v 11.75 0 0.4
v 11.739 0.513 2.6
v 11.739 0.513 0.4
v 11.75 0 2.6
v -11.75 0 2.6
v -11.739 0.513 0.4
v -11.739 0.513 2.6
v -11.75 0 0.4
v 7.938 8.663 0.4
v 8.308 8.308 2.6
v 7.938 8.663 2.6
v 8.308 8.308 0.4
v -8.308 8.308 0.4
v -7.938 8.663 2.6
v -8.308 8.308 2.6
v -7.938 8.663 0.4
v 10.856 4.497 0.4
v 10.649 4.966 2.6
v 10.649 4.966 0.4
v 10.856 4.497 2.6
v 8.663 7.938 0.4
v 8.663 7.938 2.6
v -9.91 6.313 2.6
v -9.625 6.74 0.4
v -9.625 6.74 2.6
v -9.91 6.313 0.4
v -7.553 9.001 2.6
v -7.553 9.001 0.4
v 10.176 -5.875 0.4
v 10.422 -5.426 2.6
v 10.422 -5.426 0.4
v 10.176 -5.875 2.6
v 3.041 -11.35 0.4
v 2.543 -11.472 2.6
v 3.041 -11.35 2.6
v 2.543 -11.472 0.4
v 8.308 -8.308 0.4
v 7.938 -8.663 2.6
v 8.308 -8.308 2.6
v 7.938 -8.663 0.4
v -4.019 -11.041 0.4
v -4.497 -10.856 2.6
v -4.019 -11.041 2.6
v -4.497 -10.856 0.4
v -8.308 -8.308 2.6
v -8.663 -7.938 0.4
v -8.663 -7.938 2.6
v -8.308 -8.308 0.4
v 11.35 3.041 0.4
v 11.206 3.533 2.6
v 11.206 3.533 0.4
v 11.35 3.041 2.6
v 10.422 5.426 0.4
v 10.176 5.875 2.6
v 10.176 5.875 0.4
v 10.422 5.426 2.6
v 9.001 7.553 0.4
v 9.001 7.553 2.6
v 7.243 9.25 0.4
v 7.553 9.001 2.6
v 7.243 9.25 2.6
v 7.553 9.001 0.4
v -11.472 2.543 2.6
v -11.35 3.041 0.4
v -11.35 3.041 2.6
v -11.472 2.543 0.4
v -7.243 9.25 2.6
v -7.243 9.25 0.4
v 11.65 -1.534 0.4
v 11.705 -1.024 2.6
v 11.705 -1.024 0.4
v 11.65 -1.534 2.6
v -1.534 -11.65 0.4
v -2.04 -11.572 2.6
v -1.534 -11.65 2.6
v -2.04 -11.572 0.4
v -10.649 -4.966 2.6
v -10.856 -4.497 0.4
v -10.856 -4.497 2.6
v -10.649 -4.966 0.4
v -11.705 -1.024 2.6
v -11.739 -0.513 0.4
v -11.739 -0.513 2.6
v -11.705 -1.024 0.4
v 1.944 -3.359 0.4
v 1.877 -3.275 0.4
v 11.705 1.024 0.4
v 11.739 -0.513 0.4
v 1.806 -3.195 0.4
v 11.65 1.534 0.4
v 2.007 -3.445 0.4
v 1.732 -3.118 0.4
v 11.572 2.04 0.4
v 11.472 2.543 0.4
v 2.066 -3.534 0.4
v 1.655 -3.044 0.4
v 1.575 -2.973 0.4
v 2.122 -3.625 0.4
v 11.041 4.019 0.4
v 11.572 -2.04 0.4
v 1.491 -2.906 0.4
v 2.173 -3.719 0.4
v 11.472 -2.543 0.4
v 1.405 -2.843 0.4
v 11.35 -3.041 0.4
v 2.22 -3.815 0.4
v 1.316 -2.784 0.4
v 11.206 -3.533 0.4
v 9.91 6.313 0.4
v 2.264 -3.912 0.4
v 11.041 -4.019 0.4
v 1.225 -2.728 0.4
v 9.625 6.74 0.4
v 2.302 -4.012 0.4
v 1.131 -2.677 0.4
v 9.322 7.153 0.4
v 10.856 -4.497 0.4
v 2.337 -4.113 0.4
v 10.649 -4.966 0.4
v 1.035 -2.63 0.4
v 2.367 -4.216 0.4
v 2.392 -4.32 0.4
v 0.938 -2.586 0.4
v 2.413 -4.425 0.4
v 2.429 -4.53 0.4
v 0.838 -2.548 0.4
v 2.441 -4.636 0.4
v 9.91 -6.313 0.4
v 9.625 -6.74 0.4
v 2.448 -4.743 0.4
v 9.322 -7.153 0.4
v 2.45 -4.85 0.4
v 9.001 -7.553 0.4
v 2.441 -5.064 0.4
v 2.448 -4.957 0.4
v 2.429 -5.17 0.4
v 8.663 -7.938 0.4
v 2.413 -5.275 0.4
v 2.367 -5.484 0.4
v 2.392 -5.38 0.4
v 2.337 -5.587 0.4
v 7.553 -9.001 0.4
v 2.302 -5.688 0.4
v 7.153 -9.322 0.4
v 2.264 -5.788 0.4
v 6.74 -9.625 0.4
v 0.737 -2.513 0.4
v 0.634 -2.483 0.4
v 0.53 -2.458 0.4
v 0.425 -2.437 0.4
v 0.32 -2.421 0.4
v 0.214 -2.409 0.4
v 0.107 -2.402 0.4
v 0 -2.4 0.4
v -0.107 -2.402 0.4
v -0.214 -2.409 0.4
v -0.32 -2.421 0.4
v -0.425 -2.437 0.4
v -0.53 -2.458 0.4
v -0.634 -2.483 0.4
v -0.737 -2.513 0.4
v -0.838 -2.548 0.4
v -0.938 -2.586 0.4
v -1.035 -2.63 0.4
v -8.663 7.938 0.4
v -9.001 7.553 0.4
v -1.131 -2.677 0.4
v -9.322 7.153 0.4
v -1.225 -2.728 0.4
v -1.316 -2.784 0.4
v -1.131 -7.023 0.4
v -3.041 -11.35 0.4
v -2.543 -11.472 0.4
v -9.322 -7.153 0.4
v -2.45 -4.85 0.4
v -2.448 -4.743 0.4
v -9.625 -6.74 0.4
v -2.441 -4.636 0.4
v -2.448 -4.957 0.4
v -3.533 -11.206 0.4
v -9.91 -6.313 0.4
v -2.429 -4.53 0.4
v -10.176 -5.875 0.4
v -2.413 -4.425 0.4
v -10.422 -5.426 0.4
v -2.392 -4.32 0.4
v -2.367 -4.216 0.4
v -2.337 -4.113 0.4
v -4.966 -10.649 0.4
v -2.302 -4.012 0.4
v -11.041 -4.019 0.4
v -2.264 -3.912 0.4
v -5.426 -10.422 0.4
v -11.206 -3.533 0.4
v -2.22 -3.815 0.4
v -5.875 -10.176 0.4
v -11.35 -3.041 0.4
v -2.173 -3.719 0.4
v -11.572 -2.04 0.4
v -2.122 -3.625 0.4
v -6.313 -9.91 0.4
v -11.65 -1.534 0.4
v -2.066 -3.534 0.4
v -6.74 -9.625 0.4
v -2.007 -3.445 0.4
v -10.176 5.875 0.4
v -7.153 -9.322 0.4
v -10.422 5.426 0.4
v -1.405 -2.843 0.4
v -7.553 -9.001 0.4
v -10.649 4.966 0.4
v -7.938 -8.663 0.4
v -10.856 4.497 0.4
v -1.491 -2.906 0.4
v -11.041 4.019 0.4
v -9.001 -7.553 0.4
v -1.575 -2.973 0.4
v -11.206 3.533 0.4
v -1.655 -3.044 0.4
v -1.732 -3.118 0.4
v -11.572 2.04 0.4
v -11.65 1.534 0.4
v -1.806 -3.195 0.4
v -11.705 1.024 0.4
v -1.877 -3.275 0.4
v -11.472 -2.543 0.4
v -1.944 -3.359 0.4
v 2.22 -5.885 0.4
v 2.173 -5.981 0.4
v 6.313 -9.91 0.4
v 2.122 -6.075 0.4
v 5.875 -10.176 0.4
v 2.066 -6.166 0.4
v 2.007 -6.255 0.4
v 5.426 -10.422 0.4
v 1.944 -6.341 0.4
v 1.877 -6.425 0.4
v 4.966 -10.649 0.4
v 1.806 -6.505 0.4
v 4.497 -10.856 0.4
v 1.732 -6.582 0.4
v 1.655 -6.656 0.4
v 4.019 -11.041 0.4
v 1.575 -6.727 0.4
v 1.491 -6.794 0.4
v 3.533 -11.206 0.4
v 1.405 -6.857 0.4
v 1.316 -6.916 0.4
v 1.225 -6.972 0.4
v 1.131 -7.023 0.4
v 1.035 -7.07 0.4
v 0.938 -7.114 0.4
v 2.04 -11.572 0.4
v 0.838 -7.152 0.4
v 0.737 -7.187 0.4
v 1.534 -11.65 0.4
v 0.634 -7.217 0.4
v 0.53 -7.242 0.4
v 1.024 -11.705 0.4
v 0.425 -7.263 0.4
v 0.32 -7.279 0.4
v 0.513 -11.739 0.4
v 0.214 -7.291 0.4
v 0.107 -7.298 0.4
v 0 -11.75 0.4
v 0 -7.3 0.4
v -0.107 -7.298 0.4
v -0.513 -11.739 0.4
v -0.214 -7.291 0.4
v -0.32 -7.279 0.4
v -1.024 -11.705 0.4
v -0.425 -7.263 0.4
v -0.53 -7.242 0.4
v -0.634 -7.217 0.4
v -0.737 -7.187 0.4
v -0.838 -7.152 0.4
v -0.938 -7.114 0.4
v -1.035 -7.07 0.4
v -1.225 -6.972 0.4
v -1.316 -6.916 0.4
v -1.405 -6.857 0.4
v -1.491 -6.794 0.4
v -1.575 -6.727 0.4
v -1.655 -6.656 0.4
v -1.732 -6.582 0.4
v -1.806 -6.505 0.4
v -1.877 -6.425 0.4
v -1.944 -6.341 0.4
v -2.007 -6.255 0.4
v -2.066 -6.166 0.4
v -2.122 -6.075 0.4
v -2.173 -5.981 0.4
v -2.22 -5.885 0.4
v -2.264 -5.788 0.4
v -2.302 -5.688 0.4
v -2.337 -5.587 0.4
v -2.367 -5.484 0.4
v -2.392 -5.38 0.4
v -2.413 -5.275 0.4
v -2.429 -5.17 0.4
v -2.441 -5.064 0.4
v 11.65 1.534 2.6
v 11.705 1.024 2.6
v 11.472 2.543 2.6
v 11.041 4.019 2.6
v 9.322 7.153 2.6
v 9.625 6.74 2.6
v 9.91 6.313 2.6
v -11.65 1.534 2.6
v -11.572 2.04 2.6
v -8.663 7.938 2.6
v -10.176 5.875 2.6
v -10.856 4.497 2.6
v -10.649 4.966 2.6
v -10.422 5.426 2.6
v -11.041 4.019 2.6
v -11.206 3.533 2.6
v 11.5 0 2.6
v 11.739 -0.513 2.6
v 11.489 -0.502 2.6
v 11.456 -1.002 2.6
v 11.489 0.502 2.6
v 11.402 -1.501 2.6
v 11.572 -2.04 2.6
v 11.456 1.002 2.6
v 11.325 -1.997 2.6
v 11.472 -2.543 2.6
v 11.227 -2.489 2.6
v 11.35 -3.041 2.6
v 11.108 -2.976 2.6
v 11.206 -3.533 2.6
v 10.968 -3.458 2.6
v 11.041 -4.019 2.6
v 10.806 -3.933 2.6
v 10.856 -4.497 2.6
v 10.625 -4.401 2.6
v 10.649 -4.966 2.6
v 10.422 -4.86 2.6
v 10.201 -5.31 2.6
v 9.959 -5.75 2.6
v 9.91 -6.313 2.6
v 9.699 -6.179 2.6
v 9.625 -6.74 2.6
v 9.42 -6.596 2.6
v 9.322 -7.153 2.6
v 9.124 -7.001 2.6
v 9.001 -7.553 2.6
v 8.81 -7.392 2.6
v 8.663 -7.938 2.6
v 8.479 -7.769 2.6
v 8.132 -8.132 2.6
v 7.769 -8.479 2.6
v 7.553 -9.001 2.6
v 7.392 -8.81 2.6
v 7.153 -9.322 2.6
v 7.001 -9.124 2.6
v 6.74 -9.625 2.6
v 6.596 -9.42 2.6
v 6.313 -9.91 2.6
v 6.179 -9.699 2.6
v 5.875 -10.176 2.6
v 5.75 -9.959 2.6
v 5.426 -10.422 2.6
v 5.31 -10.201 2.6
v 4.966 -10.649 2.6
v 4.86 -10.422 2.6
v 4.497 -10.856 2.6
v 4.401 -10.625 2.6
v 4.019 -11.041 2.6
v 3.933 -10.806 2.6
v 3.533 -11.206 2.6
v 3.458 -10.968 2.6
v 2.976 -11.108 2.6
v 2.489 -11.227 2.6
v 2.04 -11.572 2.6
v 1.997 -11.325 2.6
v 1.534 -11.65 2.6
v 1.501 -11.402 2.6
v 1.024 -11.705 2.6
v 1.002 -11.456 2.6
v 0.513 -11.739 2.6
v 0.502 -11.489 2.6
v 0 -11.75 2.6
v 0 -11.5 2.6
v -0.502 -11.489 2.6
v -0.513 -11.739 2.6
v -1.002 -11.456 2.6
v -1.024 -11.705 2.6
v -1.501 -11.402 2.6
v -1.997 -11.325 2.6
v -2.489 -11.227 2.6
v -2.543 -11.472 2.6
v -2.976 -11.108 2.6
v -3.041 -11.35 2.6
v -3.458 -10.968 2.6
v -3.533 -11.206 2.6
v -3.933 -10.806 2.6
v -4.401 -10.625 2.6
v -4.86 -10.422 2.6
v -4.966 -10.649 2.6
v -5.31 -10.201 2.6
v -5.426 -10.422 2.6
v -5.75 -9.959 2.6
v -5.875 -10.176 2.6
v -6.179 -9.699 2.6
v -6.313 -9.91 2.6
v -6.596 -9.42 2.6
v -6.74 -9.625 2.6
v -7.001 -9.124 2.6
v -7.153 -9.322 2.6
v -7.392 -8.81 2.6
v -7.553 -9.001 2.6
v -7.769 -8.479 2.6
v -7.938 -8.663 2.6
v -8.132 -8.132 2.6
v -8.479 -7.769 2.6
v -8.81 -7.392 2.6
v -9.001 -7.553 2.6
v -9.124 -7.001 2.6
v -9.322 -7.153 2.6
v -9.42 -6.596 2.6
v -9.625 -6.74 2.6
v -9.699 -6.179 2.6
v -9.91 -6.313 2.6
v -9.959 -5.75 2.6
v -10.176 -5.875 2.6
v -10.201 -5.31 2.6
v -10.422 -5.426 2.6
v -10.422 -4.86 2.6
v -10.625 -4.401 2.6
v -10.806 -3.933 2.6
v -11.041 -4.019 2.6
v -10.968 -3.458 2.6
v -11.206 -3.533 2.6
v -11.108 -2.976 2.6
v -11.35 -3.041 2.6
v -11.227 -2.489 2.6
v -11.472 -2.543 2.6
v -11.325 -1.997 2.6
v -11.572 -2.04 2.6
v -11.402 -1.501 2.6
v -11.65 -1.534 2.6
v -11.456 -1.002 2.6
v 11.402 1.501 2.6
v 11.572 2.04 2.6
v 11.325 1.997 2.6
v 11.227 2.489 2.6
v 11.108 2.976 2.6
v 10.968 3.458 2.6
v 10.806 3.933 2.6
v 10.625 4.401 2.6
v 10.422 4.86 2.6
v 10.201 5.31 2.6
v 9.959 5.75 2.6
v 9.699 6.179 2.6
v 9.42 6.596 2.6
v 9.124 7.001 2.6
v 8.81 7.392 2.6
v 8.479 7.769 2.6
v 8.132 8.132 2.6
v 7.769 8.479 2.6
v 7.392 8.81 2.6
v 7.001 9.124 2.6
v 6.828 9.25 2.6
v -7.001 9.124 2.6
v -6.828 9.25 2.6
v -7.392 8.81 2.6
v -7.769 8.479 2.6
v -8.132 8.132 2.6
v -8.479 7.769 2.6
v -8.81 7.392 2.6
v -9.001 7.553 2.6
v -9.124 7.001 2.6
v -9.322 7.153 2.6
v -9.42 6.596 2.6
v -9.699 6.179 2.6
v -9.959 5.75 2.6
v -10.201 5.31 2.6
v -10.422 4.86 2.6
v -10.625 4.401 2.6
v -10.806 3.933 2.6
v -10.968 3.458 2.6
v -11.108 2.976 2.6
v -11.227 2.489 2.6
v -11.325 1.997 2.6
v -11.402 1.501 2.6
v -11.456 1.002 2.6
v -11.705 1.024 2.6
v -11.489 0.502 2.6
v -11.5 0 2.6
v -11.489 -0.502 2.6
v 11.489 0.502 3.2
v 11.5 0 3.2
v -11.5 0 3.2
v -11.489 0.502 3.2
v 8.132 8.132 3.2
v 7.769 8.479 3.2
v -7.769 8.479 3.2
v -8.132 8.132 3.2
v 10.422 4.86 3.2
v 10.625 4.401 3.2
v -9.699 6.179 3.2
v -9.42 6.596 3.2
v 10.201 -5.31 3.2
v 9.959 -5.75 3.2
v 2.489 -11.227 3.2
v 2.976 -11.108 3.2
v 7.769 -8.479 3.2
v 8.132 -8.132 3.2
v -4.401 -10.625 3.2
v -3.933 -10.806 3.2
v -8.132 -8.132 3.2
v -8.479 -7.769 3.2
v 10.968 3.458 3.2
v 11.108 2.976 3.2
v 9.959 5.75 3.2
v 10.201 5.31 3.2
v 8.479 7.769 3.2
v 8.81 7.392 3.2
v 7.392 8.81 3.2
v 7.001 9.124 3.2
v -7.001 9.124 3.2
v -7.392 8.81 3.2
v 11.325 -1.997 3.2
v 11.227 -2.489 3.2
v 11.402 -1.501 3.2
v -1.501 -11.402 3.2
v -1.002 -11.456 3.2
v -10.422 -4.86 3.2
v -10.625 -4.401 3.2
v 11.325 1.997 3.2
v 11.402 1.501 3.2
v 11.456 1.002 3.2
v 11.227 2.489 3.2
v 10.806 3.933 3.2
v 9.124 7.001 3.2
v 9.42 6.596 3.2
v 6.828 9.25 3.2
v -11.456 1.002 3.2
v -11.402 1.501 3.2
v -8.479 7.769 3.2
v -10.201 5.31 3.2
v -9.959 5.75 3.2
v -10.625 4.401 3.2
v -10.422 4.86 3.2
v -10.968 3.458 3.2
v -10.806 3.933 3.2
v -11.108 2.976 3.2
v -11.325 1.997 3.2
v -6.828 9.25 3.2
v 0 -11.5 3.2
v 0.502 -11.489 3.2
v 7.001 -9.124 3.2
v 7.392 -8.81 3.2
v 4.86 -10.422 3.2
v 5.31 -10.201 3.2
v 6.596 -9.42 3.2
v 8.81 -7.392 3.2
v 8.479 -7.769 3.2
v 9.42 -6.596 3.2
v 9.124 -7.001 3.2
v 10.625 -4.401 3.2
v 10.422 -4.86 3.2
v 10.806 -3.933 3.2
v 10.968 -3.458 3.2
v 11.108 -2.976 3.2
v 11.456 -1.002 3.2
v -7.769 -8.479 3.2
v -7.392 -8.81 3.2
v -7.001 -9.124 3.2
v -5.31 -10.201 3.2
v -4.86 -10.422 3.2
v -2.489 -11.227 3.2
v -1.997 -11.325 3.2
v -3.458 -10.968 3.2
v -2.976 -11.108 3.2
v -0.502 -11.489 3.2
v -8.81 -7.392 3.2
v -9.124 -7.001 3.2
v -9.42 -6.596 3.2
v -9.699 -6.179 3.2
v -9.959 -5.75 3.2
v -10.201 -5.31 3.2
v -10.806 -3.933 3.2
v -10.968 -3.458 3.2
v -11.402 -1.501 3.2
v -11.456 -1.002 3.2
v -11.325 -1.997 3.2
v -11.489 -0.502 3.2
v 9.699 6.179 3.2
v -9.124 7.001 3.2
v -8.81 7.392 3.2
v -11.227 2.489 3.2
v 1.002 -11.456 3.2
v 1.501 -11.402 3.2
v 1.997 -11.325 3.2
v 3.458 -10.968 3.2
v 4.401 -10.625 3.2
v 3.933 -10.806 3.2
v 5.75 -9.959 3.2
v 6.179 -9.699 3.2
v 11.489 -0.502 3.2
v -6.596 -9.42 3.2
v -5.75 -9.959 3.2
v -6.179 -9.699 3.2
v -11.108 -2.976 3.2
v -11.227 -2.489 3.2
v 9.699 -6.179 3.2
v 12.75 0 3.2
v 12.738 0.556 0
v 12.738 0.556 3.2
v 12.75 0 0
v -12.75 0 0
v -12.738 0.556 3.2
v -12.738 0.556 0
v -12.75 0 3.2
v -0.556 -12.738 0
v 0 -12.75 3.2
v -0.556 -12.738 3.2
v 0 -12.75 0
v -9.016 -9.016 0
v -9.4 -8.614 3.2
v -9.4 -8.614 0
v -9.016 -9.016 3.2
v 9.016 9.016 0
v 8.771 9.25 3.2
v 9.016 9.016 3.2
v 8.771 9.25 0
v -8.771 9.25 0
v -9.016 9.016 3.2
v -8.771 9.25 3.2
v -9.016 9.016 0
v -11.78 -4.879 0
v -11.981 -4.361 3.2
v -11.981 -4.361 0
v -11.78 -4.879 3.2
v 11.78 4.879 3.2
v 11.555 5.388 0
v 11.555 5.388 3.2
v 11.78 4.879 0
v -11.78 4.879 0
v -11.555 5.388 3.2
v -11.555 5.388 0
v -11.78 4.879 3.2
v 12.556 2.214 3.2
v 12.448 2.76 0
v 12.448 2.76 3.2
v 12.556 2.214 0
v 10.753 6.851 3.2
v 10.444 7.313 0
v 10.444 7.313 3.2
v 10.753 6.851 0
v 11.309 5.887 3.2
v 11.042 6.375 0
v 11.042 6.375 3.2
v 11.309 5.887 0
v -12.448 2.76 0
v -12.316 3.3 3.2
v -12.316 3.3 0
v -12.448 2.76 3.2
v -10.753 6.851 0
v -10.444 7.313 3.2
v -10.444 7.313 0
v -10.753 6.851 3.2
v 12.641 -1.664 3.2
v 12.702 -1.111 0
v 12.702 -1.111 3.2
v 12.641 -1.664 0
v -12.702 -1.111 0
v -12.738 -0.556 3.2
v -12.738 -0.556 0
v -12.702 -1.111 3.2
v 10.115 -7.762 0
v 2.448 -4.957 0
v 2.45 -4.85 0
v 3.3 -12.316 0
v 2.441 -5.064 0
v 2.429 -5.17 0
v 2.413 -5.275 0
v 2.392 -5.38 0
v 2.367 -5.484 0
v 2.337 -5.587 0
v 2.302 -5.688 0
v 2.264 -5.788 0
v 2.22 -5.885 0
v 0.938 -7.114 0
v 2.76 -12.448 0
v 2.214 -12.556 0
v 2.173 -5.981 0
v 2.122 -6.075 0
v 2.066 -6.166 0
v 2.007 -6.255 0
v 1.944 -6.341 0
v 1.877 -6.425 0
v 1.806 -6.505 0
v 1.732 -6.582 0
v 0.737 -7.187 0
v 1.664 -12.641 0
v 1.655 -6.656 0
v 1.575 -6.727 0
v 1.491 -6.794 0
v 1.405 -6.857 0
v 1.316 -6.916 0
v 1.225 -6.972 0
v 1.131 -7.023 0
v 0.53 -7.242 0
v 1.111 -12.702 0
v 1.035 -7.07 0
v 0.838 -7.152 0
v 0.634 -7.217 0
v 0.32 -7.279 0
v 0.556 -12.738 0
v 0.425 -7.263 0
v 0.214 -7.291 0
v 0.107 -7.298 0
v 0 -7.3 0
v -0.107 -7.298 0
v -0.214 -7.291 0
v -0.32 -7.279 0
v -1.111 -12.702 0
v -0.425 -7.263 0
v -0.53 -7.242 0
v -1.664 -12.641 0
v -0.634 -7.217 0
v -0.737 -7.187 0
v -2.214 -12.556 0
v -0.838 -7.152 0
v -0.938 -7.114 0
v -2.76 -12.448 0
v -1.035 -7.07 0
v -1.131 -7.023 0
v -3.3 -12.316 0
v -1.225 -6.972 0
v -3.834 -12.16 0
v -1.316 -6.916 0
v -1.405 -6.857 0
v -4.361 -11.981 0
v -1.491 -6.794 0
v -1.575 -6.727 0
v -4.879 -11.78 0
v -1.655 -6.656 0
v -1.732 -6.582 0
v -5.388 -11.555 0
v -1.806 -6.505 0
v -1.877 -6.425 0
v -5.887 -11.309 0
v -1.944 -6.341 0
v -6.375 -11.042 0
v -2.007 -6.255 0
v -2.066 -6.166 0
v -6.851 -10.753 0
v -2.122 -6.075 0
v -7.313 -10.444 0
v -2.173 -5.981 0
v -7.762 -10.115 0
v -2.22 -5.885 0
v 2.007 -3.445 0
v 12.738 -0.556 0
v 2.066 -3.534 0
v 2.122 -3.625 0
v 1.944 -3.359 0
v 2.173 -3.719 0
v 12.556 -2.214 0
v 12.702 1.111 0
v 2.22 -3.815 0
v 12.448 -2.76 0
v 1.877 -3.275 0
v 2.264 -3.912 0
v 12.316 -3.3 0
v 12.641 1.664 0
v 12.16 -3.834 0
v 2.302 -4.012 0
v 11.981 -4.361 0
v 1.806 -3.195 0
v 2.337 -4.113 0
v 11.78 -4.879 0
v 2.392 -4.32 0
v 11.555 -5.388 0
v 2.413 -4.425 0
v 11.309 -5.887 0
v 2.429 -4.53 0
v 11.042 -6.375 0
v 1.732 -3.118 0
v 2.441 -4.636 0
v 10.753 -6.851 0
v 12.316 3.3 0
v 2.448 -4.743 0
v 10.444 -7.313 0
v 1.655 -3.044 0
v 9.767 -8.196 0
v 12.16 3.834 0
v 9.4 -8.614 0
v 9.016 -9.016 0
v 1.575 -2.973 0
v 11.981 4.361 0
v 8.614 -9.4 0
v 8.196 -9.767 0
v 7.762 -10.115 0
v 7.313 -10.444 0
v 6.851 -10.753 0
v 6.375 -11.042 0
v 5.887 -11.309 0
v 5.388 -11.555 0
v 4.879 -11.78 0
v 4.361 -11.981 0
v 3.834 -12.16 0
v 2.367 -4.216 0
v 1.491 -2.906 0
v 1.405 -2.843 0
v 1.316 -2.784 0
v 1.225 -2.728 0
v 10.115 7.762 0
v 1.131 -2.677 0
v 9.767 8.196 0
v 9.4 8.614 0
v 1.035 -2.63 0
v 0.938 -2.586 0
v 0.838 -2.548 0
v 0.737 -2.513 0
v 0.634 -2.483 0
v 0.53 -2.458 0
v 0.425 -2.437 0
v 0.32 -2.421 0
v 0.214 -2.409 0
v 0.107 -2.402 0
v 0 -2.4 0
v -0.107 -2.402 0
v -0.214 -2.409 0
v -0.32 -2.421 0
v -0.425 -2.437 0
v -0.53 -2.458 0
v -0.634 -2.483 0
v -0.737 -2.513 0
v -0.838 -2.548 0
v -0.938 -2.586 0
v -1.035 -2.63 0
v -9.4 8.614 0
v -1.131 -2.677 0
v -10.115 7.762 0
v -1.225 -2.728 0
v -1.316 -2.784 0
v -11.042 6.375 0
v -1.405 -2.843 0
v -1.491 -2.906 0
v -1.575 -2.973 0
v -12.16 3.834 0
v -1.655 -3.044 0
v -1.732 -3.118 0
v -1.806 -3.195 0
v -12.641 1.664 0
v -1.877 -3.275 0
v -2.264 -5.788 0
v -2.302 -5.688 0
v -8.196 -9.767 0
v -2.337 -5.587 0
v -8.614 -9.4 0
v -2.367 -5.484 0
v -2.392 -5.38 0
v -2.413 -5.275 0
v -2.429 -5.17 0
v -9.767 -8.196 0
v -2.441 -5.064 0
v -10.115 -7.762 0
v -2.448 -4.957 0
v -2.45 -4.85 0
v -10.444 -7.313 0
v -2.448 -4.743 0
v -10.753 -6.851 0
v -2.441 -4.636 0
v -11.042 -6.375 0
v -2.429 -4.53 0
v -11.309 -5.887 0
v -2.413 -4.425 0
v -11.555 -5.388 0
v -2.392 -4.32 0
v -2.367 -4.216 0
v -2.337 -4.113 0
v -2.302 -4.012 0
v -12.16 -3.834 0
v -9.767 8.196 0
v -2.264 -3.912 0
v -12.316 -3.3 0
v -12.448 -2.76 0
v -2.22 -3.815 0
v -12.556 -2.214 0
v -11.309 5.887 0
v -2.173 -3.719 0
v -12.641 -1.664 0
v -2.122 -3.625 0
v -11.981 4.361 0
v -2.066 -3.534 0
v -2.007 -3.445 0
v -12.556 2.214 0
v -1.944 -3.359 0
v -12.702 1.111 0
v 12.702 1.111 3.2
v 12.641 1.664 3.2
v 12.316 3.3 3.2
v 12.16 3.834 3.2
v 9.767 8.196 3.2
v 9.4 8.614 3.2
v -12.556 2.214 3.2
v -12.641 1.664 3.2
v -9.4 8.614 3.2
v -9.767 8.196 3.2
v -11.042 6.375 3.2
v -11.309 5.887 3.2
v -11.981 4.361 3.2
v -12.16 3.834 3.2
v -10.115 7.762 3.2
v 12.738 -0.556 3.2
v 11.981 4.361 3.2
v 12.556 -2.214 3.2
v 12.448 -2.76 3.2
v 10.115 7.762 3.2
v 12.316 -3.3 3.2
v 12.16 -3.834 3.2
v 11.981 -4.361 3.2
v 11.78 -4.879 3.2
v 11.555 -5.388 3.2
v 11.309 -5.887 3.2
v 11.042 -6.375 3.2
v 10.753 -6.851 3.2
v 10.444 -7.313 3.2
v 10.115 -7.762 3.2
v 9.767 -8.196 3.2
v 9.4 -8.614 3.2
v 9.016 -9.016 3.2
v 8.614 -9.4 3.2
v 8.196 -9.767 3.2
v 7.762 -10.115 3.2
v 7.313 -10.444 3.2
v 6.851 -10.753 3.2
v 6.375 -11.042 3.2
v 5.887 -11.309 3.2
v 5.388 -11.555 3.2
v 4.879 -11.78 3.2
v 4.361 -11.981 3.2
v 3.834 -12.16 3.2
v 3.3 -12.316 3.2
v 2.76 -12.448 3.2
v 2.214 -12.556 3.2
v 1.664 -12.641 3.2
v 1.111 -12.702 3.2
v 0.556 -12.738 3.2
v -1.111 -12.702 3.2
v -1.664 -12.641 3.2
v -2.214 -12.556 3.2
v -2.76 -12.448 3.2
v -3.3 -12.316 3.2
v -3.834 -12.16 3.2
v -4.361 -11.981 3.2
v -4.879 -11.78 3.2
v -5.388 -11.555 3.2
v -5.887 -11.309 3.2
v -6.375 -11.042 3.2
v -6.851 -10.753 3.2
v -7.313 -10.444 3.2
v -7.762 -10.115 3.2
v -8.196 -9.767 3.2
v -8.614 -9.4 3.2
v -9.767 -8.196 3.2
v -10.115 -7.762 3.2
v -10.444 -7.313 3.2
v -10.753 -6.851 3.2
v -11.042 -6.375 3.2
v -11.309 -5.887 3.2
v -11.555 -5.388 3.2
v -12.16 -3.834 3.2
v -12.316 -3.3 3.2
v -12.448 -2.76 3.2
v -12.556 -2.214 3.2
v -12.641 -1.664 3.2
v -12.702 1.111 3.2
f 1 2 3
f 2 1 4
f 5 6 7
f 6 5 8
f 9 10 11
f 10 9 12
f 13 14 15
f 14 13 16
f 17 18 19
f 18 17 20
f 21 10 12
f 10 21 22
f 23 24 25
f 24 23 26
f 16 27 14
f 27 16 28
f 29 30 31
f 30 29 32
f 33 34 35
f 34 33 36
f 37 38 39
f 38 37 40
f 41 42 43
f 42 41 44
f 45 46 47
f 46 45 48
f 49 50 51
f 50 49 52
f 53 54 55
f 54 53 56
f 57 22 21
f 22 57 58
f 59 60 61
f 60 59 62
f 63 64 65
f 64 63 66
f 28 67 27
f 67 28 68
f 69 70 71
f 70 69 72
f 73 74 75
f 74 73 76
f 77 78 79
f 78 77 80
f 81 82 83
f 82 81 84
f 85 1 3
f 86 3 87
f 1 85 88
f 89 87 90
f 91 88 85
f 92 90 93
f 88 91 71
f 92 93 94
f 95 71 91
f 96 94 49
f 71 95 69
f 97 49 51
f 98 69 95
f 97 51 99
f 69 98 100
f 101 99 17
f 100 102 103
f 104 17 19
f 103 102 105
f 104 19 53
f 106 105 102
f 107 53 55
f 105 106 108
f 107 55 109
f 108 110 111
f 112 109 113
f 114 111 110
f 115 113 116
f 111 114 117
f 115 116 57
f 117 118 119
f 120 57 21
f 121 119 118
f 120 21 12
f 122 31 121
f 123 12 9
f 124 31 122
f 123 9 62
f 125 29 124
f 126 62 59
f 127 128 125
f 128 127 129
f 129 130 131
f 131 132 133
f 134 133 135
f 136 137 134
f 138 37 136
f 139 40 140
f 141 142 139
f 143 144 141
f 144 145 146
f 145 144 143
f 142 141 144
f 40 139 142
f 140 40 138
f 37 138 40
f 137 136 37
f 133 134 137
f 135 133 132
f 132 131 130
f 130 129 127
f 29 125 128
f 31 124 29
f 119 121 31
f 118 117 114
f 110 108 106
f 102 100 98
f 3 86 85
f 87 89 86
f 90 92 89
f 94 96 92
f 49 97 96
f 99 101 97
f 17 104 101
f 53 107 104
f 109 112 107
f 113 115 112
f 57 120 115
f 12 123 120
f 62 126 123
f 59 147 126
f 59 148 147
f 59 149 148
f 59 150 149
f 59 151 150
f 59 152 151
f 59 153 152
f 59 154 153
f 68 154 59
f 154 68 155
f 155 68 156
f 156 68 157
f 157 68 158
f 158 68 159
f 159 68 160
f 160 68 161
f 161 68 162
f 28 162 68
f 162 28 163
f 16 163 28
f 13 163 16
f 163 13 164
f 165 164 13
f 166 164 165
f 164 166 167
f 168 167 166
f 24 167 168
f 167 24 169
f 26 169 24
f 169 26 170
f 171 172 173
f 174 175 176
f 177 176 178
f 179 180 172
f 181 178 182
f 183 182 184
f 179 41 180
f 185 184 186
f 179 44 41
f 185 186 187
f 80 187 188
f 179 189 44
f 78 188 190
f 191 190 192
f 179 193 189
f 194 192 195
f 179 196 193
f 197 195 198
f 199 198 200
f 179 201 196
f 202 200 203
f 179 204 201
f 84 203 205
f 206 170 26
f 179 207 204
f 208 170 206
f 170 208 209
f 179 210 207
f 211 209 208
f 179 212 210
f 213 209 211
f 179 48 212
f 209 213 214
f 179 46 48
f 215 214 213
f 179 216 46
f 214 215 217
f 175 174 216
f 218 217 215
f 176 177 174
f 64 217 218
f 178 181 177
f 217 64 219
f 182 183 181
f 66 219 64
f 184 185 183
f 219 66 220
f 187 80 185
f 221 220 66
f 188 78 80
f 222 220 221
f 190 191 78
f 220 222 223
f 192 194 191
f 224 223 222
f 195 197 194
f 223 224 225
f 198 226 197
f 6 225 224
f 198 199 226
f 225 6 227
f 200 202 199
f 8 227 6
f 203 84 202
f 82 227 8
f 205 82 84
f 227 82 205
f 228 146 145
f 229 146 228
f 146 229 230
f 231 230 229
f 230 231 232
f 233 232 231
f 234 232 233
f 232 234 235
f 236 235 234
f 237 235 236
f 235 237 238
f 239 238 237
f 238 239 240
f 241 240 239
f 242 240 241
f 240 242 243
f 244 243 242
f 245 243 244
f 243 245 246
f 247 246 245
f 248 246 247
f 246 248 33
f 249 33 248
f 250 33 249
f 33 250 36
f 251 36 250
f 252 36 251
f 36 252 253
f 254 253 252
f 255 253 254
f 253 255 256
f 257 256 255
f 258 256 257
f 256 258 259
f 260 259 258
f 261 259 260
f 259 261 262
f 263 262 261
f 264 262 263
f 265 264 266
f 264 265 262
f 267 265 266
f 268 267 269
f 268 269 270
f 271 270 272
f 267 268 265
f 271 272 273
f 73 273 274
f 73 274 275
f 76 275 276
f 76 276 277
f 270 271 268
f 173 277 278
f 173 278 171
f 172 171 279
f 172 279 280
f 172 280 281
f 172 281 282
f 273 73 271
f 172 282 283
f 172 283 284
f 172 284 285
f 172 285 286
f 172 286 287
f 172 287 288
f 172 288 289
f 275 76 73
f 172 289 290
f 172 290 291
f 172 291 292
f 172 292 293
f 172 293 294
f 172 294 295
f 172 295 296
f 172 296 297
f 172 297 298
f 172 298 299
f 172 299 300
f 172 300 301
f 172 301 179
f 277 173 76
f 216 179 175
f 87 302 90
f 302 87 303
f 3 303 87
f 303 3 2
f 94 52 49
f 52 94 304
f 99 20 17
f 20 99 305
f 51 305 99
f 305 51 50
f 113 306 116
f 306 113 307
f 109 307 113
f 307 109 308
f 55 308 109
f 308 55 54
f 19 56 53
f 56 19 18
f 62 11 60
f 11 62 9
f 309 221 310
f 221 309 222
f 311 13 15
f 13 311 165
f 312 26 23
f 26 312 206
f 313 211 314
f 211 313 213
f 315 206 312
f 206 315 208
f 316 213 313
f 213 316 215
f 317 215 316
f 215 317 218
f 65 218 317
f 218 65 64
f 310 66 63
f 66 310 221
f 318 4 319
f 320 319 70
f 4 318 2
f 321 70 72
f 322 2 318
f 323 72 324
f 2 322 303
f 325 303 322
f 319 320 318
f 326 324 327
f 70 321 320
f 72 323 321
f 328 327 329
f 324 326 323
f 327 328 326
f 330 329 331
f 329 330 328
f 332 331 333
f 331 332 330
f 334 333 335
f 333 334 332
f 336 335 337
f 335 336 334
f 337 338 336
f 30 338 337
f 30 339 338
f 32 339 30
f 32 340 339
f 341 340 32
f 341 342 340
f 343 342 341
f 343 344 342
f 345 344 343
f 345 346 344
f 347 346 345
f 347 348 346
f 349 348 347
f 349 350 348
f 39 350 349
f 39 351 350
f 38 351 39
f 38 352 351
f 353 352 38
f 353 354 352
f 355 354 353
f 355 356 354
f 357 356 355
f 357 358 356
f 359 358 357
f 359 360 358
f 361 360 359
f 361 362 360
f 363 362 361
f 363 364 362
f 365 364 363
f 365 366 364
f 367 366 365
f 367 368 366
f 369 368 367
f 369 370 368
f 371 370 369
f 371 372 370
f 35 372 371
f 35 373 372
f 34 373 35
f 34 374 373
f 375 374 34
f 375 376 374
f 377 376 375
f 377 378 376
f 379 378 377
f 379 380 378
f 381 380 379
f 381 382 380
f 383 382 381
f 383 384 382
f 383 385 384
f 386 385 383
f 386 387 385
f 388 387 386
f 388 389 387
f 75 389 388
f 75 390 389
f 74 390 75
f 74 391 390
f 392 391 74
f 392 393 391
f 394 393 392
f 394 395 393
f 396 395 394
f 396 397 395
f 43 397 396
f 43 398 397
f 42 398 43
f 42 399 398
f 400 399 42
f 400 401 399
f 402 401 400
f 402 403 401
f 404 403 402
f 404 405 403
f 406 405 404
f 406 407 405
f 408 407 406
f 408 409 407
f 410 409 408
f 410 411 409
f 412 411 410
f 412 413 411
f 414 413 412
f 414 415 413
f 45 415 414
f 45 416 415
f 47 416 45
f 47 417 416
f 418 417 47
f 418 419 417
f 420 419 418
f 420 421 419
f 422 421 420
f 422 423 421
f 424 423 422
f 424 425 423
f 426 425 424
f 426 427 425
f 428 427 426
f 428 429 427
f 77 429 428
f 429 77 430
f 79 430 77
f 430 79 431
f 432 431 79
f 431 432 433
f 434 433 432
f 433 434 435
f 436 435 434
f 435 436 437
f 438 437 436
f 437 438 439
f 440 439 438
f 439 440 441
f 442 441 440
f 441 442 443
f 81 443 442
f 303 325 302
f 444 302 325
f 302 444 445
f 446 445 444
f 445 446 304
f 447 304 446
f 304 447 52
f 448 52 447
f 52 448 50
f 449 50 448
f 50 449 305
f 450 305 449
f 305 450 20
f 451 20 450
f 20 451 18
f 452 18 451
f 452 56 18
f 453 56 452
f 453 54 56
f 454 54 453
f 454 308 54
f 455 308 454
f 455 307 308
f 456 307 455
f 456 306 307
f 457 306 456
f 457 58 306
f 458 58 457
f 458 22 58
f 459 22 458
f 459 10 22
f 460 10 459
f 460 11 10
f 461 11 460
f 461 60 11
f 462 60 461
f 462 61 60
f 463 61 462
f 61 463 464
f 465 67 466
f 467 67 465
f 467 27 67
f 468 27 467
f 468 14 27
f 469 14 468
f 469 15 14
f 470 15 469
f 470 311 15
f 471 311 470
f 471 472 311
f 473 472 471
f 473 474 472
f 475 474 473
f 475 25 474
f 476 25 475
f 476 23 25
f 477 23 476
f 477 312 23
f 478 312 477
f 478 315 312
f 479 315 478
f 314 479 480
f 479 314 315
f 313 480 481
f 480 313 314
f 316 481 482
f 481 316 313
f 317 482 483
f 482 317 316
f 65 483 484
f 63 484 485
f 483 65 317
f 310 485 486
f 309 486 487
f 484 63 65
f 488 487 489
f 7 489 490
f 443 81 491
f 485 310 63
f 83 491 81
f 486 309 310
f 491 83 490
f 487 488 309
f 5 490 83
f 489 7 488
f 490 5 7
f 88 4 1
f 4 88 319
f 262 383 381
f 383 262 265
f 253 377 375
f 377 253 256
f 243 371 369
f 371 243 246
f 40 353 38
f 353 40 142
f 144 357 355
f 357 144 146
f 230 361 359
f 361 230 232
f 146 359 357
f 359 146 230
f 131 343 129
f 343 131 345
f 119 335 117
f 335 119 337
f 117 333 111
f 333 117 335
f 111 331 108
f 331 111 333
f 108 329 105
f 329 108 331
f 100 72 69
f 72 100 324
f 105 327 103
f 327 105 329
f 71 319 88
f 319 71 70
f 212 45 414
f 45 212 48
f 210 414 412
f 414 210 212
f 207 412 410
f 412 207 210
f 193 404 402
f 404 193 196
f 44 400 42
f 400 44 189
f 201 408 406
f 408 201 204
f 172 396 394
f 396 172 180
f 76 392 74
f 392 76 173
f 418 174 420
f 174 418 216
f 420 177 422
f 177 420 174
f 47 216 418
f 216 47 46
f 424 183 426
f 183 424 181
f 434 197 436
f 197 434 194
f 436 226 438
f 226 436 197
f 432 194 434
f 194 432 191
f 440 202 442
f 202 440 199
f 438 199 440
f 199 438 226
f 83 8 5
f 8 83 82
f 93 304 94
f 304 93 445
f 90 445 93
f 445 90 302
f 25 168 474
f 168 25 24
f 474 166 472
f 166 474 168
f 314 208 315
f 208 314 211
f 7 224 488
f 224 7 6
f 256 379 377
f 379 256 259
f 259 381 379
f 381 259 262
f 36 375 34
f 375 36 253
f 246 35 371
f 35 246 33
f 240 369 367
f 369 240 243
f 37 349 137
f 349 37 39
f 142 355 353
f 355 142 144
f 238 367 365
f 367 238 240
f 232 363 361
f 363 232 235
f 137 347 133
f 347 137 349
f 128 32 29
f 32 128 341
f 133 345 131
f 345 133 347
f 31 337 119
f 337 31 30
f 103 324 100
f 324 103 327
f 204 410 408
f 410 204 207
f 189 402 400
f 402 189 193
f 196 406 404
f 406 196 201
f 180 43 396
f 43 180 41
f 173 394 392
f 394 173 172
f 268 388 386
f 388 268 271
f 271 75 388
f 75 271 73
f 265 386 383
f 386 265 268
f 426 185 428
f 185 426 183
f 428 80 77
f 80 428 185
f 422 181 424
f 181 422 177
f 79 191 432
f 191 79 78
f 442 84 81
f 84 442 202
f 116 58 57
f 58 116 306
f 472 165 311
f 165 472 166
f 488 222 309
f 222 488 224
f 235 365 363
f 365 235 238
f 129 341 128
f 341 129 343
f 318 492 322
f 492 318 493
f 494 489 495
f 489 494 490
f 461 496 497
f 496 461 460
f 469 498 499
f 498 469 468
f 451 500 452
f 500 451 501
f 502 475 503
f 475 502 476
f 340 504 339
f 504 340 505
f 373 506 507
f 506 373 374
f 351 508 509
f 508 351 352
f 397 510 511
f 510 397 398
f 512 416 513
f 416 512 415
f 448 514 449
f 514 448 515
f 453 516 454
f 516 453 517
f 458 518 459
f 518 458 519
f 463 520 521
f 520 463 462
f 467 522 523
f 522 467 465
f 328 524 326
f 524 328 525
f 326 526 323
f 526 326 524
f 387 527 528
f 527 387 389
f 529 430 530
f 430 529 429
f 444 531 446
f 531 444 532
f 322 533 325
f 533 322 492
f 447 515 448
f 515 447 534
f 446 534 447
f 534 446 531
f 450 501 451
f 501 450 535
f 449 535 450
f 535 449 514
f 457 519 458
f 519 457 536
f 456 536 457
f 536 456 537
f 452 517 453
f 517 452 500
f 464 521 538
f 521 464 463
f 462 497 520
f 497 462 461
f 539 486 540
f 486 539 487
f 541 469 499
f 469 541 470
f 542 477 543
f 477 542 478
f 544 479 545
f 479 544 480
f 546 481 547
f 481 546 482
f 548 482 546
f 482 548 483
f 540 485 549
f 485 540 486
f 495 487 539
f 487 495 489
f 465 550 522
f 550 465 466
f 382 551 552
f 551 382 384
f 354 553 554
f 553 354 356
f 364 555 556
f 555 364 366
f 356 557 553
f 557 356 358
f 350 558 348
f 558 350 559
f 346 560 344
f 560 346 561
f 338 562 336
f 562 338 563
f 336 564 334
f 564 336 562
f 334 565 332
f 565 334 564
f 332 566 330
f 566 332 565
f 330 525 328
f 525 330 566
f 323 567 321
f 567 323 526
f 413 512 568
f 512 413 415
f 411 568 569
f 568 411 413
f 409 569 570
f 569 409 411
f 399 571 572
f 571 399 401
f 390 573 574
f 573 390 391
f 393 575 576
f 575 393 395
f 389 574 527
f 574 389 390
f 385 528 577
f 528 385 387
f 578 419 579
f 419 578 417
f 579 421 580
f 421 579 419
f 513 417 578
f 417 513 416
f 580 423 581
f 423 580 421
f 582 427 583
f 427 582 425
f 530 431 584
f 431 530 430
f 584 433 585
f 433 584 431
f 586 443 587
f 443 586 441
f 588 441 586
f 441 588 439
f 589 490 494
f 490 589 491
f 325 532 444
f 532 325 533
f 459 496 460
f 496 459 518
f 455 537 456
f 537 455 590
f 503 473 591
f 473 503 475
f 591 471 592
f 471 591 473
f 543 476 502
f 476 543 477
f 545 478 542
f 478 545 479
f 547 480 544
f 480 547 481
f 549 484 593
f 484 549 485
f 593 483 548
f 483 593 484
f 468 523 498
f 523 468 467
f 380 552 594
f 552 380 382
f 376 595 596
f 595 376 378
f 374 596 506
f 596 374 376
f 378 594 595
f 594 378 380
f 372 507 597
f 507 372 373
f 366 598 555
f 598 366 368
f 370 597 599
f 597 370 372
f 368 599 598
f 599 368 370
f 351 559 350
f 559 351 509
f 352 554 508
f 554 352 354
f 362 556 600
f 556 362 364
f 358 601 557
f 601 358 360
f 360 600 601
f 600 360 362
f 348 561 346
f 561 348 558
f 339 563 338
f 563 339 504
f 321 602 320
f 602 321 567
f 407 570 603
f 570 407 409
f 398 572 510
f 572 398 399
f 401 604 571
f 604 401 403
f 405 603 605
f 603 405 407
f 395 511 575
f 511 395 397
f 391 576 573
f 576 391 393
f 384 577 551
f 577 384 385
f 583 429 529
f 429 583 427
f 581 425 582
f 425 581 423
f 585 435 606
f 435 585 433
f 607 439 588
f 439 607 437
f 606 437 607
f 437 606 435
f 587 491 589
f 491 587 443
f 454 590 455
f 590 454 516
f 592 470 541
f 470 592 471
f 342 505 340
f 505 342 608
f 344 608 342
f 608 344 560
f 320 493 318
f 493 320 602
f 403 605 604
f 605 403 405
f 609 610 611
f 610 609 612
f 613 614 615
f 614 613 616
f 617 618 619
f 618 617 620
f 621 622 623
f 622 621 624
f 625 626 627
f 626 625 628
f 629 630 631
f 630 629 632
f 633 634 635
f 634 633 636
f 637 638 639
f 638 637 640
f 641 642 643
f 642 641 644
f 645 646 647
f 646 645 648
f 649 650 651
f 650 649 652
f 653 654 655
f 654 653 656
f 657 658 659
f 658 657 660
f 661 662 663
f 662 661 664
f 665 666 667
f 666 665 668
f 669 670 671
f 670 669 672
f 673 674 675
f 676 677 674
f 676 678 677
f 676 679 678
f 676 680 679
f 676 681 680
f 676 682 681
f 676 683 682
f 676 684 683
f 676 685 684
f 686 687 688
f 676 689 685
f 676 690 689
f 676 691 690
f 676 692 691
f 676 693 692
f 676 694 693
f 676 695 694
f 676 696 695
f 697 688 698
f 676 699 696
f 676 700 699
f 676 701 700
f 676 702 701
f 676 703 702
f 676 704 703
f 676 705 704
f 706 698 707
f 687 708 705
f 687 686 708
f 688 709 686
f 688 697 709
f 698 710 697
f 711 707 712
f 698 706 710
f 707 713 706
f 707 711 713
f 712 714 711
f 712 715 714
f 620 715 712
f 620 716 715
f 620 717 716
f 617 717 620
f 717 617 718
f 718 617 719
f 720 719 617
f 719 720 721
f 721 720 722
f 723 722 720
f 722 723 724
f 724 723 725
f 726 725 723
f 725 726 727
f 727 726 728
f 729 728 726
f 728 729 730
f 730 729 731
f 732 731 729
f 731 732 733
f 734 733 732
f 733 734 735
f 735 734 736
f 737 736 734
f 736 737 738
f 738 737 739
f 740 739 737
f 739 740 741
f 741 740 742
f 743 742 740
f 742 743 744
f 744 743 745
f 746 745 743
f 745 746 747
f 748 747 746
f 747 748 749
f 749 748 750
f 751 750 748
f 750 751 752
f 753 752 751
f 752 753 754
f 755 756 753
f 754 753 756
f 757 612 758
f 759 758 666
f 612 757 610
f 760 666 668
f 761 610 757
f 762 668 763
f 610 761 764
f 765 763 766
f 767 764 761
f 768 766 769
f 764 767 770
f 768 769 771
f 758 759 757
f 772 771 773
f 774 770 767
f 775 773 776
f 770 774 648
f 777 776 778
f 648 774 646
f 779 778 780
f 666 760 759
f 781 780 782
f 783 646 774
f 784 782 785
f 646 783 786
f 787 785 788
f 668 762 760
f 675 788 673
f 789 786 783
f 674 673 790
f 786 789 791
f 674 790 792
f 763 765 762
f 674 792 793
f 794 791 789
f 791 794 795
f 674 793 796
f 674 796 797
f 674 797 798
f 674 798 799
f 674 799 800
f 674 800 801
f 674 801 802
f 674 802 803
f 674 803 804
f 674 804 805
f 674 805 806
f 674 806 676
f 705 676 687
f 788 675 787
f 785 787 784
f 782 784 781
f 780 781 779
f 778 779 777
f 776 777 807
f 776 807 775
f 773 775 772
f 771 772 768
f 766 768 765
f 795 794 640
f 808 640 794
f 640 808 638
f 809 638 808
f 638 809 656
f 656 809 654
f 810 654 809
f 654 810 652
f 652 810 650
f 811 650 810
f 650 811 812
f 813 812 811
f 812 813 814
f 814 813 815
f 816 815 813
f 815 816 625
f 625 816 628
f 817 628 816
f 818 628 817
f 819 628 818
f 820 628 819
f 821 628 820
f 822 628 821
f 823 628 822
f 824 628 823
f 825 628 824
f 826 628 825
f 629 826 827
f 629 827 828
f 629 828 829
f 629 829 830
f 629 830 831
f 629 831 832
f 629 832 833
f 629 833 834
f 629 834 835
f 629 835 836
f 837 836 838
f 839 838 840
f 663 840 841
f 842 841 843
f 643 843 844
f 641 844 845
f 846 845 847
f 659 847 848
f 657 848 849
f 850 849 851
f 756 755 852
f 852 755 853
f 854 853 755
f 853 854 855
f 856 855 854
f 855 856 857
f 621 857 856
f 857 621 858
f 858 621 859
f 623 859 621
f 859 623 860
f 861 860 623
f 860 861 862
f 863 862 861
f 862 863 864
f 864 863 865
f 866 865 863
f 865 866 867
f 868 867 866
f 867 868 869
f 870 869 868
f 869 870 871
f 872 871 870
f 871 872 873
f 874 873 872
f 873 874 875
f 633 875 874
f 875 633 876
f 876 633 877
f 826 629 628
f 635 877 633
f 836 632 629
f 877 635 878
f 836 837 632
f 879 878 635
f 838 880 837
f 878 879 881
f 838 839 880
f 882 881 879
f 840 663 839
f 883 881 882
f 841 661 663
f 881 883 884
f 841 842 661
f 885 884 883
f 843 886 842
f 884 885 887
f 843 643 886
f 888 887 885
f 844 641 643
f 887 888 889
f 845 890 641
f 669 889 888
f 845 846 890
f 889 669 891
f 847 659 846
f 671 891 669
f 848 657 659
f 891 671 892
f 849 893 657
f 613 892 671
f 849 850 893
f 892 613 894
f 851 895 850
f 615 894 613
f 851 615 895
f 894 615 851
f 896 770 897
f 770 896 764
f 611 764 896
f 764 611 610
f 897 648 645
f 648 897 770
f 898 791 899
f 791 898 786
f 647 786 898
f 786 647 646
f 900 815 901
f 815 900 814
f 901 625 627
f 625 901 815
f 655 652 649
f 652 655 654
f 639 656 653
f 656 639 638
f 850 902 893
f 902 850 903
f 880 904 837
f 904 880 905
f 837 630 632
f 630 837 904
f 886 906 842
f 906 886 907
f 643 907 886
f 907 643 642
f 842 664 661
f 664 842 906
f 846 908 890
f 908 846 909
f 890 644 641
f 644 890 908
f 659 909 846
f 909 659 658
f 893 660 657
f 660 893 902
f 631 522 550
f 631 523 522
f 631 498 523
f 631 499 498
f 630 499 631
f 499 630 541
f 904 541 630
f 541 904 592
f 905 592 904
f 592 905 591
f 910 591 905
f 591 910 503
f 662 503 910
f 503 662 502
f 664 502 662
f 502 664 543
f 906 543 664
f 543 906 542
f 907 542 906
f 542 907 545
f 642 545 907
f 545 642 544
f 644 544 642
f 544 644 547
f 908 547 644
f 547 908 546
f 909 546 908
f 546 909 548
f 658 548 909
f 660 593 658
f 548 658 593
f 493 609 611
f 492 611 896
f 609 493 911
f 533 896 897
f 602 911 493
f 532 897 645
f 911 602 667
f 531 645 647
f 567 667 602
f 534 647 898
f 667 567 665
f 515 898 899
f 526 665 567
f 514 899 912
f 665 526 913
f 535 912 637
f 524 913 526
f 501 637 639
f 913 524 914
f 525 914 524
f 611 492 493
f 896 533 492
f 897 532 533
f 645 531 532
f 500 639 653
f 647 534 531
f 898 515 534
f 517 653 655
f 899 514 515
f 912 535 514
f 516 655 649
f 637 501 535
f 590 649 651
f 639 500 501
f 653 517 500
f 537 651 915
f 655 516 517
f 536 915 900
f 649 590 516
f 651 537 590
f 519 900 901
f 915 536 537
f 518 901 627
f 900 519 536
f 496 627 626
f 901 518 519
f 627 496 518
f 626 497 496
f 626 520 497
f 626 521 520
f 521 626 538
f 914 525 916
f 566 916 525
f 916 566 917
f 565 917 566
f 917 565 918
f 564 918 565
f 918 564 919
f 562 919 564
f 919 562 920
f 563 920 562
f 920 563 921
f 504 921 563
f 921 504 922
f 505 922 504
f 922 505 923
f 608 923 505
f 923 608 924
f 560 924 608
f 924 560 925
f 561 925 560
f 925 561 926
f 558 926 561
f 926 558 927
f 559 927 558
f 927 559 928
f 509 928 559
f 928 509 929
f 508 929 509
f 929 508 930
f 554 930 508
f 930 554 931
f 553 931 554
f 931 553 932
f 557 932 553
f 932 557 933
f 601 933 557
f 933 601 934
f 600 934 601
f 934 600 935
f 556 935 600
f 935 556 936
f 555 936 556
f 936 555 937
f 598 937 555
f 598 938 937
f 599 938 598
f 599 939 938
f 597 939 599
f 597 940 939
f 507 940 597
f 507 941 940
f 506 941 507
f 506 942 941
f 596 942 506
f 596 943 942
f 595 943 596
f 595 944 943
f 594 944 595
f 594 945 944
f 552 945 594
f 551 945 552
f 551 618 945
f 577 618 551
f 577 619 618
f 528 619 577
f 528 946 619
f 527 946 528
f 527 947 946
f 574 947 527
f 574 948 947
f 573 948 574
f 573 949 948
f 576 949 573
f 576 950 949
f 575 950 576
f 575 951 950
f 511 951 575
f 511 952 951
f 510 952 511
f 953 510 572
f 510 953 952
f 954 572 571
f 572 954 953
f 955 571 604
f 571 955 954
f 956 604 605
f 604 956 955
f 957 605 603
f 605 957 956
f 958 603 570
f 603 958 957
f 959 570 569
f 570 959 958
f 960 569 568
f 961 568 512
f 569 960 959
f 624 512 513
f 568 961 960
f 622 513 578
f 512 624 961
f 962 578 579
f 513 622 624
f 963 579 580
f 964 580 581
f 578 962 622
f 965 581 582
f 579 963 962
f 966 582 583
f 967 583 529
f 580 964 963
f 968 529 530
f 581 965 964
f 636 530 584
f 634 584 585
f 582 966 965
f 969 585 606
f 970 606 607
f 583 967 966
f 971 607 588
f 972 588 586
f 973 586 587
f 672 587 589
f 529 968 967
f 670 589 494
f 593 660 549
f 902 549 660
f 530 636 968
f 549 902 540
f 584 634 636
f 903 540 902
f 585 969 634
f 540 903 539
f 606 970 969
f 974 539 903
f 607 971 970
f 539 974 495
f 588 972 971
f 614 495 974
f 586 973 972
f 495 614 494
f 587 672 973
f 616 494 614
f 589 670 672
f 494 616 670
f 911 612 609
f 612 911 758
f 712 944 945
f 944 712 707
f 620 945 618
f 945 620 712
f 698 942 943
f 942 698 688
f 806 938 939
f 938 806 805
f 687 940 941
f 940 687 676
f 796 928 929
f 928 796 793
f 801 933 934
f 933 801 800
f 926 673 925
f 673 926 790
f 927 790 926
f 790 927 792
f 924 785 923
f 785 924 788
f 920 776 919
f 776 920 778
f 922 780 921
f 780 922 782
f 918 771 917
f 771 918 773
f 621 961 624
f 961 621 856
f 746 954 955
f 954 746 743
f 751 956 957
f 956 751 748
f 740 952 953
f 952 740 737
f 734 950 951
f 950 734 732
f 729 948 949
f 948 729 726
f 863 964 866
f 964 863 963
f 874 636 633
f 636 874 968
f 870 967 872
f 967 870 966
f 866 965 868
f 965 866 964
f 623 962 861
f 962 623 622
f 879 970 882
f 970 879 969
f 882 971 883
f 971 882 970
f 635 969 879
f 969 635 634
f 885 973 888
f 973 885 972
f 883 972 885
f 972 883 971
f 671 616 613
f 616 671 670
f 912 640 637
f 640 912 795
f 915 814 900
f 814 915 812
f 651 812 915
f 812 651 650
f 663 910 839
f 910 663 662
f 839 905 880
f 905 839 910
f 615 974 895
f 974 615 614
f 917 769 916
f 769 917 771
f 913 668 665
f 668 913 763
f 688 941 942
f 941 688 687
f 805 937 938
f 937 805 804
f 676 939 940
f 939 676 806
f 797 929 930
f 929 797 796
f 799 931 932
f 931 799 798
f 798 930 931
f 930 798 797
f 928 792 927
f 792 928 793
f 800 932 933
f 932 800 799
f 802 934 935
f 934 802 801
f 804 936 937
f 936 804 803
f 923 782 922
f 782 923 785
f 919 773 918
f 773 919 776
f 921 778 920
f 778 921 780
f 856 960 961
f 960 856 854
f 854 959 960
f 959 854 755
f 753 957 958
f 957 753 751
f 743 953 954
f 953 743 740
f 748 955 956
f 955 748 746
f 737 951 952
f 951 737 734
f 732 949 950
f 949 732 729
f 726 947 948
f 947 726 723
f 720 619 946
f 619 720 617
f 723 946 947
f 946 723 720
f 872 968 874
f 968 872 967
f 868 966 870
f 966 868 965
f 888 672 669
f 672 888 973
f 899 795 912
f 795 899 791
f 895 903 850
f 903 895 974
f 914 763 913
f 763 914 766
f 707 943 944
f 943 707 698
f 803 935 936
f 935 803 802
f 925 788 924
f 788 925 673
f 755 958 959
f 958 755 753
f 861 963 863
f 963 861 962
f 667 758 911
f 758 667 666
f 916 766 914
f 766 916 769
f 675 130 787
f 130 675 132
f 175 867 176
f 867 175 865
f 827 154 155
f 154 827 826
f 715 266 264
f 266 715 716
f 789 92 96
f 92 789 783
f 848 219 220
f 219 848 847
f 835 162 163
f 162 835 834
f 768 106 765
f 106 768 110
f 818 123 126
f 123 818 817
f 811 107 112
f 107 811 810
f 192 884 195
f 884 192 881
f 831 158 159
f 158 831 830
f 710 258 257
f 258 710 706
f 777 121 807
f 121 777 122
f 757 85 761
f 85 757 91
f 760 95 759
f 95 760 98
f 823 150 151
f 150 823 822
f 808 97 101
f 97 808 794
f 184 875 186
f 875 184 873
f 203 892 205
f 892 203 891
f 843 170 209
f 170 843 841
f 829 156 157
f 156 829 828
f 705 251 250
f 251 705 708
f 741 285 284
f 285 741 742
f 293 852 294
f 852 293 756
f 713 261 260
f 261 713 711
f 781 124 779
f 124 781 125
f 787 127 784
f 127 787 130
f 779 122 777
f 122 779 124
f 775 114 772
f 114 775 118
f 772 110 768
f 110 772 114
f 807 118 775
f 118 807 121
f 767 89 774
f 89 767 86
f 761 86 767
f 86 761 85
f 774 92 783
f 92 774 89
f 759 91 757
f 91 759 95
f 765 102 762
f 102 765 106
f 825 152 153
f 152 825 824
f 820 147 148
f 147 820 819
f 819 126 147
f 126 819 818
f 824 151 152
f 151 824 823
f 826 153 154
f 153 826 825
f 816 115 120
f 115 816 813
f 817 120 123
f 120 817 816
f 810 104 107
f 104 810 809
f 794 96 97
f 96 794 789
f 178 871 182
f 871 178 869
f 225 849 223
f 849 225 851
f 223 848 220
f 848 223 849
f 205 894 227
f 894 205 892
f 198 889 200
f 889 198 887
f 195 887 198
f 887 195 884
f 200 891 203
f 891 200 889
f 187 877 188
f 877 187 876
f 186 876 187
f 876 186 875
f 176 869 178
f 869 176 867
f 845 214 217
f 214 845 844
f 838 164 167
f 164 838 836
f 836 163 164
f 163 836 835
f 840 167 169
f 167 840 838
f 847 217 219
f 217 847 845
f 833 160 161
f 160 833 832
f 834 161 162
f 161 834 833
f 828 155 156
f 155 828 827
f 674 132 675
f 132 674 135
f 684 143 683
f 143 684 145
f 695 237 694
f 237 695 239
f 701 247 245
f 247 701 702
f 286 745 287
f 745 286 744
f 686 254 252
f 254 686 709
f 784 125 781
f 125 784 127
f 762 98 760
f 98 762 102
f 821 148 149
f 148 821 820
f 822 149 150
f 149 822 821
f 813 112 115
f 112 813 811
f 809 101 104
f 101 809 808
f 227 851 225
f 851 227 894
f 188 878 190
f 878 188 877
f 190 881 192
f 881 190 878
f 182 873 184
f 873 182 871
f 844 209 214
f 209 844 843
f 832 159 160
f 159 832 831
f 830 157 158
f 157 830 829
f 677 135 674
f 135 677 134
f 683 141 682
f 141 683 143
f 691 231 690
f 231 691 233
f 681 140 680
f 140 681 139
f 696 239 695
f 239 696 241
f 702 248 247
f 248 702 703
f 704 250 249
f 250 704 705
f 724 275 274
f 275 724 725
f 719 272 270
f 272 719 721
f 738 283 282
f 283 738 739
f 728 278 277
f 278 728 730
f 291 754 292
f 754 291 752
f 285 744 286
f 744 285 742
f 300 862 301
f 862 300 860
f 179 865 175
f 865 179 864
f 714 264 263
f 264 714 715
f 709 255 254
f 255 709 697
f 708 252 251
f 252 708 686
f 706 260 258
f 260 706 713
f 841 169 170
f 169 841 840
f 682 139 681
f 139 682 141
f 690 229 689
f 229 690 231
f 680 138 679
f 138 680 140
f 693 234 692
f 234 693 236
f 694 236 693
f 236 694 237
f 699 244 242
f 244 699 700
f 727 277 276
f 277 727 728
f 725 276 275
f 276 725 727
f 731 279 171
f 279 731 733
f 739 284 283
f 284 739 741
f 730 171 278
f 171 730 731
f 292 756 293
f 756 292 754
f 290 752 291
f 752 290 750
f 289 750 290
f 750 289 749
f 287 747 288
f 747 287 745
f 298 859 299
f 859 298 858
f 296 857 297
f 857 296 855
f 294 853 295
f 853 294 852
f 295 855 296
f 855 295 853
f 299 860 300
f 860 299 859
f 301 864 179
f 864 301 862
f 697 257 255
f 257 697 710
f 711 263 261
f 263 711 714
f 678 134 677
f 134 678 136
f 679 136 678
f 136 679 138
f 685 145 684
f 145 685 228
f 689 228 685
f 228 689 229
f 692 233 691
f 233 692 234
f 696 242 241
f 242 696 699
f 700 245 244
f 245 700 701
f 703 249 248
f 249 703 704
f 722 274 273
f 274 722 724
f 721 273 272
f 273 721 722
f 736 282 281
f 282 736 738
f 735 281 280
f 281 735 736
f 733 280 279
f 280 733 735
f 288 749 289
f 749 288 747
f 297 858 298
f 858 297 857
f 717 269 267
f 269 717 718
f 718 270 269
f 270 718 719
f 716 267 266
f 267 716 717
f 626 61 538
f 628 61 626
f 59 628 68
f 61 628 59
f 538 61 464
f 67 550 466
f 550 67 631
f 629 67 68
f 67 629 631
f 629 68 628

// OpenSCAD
$fn=36*4;

module keylabel(){
    difference(){
        cylinder(d=25.5,h=3.2);
        translate([0,-25.5/2+2.4+5.5,-.2])
            cylinder(d=4.9,h=3);
        translate([0,0,.4]) {
            cylinder(d=23.5,h=2.2);
            cylinder(d=23.0,h=3);
        }
        translate([-15,25.5/2-3.5,0])
            cube([30,30,30]);

    }
}

keylabel();
